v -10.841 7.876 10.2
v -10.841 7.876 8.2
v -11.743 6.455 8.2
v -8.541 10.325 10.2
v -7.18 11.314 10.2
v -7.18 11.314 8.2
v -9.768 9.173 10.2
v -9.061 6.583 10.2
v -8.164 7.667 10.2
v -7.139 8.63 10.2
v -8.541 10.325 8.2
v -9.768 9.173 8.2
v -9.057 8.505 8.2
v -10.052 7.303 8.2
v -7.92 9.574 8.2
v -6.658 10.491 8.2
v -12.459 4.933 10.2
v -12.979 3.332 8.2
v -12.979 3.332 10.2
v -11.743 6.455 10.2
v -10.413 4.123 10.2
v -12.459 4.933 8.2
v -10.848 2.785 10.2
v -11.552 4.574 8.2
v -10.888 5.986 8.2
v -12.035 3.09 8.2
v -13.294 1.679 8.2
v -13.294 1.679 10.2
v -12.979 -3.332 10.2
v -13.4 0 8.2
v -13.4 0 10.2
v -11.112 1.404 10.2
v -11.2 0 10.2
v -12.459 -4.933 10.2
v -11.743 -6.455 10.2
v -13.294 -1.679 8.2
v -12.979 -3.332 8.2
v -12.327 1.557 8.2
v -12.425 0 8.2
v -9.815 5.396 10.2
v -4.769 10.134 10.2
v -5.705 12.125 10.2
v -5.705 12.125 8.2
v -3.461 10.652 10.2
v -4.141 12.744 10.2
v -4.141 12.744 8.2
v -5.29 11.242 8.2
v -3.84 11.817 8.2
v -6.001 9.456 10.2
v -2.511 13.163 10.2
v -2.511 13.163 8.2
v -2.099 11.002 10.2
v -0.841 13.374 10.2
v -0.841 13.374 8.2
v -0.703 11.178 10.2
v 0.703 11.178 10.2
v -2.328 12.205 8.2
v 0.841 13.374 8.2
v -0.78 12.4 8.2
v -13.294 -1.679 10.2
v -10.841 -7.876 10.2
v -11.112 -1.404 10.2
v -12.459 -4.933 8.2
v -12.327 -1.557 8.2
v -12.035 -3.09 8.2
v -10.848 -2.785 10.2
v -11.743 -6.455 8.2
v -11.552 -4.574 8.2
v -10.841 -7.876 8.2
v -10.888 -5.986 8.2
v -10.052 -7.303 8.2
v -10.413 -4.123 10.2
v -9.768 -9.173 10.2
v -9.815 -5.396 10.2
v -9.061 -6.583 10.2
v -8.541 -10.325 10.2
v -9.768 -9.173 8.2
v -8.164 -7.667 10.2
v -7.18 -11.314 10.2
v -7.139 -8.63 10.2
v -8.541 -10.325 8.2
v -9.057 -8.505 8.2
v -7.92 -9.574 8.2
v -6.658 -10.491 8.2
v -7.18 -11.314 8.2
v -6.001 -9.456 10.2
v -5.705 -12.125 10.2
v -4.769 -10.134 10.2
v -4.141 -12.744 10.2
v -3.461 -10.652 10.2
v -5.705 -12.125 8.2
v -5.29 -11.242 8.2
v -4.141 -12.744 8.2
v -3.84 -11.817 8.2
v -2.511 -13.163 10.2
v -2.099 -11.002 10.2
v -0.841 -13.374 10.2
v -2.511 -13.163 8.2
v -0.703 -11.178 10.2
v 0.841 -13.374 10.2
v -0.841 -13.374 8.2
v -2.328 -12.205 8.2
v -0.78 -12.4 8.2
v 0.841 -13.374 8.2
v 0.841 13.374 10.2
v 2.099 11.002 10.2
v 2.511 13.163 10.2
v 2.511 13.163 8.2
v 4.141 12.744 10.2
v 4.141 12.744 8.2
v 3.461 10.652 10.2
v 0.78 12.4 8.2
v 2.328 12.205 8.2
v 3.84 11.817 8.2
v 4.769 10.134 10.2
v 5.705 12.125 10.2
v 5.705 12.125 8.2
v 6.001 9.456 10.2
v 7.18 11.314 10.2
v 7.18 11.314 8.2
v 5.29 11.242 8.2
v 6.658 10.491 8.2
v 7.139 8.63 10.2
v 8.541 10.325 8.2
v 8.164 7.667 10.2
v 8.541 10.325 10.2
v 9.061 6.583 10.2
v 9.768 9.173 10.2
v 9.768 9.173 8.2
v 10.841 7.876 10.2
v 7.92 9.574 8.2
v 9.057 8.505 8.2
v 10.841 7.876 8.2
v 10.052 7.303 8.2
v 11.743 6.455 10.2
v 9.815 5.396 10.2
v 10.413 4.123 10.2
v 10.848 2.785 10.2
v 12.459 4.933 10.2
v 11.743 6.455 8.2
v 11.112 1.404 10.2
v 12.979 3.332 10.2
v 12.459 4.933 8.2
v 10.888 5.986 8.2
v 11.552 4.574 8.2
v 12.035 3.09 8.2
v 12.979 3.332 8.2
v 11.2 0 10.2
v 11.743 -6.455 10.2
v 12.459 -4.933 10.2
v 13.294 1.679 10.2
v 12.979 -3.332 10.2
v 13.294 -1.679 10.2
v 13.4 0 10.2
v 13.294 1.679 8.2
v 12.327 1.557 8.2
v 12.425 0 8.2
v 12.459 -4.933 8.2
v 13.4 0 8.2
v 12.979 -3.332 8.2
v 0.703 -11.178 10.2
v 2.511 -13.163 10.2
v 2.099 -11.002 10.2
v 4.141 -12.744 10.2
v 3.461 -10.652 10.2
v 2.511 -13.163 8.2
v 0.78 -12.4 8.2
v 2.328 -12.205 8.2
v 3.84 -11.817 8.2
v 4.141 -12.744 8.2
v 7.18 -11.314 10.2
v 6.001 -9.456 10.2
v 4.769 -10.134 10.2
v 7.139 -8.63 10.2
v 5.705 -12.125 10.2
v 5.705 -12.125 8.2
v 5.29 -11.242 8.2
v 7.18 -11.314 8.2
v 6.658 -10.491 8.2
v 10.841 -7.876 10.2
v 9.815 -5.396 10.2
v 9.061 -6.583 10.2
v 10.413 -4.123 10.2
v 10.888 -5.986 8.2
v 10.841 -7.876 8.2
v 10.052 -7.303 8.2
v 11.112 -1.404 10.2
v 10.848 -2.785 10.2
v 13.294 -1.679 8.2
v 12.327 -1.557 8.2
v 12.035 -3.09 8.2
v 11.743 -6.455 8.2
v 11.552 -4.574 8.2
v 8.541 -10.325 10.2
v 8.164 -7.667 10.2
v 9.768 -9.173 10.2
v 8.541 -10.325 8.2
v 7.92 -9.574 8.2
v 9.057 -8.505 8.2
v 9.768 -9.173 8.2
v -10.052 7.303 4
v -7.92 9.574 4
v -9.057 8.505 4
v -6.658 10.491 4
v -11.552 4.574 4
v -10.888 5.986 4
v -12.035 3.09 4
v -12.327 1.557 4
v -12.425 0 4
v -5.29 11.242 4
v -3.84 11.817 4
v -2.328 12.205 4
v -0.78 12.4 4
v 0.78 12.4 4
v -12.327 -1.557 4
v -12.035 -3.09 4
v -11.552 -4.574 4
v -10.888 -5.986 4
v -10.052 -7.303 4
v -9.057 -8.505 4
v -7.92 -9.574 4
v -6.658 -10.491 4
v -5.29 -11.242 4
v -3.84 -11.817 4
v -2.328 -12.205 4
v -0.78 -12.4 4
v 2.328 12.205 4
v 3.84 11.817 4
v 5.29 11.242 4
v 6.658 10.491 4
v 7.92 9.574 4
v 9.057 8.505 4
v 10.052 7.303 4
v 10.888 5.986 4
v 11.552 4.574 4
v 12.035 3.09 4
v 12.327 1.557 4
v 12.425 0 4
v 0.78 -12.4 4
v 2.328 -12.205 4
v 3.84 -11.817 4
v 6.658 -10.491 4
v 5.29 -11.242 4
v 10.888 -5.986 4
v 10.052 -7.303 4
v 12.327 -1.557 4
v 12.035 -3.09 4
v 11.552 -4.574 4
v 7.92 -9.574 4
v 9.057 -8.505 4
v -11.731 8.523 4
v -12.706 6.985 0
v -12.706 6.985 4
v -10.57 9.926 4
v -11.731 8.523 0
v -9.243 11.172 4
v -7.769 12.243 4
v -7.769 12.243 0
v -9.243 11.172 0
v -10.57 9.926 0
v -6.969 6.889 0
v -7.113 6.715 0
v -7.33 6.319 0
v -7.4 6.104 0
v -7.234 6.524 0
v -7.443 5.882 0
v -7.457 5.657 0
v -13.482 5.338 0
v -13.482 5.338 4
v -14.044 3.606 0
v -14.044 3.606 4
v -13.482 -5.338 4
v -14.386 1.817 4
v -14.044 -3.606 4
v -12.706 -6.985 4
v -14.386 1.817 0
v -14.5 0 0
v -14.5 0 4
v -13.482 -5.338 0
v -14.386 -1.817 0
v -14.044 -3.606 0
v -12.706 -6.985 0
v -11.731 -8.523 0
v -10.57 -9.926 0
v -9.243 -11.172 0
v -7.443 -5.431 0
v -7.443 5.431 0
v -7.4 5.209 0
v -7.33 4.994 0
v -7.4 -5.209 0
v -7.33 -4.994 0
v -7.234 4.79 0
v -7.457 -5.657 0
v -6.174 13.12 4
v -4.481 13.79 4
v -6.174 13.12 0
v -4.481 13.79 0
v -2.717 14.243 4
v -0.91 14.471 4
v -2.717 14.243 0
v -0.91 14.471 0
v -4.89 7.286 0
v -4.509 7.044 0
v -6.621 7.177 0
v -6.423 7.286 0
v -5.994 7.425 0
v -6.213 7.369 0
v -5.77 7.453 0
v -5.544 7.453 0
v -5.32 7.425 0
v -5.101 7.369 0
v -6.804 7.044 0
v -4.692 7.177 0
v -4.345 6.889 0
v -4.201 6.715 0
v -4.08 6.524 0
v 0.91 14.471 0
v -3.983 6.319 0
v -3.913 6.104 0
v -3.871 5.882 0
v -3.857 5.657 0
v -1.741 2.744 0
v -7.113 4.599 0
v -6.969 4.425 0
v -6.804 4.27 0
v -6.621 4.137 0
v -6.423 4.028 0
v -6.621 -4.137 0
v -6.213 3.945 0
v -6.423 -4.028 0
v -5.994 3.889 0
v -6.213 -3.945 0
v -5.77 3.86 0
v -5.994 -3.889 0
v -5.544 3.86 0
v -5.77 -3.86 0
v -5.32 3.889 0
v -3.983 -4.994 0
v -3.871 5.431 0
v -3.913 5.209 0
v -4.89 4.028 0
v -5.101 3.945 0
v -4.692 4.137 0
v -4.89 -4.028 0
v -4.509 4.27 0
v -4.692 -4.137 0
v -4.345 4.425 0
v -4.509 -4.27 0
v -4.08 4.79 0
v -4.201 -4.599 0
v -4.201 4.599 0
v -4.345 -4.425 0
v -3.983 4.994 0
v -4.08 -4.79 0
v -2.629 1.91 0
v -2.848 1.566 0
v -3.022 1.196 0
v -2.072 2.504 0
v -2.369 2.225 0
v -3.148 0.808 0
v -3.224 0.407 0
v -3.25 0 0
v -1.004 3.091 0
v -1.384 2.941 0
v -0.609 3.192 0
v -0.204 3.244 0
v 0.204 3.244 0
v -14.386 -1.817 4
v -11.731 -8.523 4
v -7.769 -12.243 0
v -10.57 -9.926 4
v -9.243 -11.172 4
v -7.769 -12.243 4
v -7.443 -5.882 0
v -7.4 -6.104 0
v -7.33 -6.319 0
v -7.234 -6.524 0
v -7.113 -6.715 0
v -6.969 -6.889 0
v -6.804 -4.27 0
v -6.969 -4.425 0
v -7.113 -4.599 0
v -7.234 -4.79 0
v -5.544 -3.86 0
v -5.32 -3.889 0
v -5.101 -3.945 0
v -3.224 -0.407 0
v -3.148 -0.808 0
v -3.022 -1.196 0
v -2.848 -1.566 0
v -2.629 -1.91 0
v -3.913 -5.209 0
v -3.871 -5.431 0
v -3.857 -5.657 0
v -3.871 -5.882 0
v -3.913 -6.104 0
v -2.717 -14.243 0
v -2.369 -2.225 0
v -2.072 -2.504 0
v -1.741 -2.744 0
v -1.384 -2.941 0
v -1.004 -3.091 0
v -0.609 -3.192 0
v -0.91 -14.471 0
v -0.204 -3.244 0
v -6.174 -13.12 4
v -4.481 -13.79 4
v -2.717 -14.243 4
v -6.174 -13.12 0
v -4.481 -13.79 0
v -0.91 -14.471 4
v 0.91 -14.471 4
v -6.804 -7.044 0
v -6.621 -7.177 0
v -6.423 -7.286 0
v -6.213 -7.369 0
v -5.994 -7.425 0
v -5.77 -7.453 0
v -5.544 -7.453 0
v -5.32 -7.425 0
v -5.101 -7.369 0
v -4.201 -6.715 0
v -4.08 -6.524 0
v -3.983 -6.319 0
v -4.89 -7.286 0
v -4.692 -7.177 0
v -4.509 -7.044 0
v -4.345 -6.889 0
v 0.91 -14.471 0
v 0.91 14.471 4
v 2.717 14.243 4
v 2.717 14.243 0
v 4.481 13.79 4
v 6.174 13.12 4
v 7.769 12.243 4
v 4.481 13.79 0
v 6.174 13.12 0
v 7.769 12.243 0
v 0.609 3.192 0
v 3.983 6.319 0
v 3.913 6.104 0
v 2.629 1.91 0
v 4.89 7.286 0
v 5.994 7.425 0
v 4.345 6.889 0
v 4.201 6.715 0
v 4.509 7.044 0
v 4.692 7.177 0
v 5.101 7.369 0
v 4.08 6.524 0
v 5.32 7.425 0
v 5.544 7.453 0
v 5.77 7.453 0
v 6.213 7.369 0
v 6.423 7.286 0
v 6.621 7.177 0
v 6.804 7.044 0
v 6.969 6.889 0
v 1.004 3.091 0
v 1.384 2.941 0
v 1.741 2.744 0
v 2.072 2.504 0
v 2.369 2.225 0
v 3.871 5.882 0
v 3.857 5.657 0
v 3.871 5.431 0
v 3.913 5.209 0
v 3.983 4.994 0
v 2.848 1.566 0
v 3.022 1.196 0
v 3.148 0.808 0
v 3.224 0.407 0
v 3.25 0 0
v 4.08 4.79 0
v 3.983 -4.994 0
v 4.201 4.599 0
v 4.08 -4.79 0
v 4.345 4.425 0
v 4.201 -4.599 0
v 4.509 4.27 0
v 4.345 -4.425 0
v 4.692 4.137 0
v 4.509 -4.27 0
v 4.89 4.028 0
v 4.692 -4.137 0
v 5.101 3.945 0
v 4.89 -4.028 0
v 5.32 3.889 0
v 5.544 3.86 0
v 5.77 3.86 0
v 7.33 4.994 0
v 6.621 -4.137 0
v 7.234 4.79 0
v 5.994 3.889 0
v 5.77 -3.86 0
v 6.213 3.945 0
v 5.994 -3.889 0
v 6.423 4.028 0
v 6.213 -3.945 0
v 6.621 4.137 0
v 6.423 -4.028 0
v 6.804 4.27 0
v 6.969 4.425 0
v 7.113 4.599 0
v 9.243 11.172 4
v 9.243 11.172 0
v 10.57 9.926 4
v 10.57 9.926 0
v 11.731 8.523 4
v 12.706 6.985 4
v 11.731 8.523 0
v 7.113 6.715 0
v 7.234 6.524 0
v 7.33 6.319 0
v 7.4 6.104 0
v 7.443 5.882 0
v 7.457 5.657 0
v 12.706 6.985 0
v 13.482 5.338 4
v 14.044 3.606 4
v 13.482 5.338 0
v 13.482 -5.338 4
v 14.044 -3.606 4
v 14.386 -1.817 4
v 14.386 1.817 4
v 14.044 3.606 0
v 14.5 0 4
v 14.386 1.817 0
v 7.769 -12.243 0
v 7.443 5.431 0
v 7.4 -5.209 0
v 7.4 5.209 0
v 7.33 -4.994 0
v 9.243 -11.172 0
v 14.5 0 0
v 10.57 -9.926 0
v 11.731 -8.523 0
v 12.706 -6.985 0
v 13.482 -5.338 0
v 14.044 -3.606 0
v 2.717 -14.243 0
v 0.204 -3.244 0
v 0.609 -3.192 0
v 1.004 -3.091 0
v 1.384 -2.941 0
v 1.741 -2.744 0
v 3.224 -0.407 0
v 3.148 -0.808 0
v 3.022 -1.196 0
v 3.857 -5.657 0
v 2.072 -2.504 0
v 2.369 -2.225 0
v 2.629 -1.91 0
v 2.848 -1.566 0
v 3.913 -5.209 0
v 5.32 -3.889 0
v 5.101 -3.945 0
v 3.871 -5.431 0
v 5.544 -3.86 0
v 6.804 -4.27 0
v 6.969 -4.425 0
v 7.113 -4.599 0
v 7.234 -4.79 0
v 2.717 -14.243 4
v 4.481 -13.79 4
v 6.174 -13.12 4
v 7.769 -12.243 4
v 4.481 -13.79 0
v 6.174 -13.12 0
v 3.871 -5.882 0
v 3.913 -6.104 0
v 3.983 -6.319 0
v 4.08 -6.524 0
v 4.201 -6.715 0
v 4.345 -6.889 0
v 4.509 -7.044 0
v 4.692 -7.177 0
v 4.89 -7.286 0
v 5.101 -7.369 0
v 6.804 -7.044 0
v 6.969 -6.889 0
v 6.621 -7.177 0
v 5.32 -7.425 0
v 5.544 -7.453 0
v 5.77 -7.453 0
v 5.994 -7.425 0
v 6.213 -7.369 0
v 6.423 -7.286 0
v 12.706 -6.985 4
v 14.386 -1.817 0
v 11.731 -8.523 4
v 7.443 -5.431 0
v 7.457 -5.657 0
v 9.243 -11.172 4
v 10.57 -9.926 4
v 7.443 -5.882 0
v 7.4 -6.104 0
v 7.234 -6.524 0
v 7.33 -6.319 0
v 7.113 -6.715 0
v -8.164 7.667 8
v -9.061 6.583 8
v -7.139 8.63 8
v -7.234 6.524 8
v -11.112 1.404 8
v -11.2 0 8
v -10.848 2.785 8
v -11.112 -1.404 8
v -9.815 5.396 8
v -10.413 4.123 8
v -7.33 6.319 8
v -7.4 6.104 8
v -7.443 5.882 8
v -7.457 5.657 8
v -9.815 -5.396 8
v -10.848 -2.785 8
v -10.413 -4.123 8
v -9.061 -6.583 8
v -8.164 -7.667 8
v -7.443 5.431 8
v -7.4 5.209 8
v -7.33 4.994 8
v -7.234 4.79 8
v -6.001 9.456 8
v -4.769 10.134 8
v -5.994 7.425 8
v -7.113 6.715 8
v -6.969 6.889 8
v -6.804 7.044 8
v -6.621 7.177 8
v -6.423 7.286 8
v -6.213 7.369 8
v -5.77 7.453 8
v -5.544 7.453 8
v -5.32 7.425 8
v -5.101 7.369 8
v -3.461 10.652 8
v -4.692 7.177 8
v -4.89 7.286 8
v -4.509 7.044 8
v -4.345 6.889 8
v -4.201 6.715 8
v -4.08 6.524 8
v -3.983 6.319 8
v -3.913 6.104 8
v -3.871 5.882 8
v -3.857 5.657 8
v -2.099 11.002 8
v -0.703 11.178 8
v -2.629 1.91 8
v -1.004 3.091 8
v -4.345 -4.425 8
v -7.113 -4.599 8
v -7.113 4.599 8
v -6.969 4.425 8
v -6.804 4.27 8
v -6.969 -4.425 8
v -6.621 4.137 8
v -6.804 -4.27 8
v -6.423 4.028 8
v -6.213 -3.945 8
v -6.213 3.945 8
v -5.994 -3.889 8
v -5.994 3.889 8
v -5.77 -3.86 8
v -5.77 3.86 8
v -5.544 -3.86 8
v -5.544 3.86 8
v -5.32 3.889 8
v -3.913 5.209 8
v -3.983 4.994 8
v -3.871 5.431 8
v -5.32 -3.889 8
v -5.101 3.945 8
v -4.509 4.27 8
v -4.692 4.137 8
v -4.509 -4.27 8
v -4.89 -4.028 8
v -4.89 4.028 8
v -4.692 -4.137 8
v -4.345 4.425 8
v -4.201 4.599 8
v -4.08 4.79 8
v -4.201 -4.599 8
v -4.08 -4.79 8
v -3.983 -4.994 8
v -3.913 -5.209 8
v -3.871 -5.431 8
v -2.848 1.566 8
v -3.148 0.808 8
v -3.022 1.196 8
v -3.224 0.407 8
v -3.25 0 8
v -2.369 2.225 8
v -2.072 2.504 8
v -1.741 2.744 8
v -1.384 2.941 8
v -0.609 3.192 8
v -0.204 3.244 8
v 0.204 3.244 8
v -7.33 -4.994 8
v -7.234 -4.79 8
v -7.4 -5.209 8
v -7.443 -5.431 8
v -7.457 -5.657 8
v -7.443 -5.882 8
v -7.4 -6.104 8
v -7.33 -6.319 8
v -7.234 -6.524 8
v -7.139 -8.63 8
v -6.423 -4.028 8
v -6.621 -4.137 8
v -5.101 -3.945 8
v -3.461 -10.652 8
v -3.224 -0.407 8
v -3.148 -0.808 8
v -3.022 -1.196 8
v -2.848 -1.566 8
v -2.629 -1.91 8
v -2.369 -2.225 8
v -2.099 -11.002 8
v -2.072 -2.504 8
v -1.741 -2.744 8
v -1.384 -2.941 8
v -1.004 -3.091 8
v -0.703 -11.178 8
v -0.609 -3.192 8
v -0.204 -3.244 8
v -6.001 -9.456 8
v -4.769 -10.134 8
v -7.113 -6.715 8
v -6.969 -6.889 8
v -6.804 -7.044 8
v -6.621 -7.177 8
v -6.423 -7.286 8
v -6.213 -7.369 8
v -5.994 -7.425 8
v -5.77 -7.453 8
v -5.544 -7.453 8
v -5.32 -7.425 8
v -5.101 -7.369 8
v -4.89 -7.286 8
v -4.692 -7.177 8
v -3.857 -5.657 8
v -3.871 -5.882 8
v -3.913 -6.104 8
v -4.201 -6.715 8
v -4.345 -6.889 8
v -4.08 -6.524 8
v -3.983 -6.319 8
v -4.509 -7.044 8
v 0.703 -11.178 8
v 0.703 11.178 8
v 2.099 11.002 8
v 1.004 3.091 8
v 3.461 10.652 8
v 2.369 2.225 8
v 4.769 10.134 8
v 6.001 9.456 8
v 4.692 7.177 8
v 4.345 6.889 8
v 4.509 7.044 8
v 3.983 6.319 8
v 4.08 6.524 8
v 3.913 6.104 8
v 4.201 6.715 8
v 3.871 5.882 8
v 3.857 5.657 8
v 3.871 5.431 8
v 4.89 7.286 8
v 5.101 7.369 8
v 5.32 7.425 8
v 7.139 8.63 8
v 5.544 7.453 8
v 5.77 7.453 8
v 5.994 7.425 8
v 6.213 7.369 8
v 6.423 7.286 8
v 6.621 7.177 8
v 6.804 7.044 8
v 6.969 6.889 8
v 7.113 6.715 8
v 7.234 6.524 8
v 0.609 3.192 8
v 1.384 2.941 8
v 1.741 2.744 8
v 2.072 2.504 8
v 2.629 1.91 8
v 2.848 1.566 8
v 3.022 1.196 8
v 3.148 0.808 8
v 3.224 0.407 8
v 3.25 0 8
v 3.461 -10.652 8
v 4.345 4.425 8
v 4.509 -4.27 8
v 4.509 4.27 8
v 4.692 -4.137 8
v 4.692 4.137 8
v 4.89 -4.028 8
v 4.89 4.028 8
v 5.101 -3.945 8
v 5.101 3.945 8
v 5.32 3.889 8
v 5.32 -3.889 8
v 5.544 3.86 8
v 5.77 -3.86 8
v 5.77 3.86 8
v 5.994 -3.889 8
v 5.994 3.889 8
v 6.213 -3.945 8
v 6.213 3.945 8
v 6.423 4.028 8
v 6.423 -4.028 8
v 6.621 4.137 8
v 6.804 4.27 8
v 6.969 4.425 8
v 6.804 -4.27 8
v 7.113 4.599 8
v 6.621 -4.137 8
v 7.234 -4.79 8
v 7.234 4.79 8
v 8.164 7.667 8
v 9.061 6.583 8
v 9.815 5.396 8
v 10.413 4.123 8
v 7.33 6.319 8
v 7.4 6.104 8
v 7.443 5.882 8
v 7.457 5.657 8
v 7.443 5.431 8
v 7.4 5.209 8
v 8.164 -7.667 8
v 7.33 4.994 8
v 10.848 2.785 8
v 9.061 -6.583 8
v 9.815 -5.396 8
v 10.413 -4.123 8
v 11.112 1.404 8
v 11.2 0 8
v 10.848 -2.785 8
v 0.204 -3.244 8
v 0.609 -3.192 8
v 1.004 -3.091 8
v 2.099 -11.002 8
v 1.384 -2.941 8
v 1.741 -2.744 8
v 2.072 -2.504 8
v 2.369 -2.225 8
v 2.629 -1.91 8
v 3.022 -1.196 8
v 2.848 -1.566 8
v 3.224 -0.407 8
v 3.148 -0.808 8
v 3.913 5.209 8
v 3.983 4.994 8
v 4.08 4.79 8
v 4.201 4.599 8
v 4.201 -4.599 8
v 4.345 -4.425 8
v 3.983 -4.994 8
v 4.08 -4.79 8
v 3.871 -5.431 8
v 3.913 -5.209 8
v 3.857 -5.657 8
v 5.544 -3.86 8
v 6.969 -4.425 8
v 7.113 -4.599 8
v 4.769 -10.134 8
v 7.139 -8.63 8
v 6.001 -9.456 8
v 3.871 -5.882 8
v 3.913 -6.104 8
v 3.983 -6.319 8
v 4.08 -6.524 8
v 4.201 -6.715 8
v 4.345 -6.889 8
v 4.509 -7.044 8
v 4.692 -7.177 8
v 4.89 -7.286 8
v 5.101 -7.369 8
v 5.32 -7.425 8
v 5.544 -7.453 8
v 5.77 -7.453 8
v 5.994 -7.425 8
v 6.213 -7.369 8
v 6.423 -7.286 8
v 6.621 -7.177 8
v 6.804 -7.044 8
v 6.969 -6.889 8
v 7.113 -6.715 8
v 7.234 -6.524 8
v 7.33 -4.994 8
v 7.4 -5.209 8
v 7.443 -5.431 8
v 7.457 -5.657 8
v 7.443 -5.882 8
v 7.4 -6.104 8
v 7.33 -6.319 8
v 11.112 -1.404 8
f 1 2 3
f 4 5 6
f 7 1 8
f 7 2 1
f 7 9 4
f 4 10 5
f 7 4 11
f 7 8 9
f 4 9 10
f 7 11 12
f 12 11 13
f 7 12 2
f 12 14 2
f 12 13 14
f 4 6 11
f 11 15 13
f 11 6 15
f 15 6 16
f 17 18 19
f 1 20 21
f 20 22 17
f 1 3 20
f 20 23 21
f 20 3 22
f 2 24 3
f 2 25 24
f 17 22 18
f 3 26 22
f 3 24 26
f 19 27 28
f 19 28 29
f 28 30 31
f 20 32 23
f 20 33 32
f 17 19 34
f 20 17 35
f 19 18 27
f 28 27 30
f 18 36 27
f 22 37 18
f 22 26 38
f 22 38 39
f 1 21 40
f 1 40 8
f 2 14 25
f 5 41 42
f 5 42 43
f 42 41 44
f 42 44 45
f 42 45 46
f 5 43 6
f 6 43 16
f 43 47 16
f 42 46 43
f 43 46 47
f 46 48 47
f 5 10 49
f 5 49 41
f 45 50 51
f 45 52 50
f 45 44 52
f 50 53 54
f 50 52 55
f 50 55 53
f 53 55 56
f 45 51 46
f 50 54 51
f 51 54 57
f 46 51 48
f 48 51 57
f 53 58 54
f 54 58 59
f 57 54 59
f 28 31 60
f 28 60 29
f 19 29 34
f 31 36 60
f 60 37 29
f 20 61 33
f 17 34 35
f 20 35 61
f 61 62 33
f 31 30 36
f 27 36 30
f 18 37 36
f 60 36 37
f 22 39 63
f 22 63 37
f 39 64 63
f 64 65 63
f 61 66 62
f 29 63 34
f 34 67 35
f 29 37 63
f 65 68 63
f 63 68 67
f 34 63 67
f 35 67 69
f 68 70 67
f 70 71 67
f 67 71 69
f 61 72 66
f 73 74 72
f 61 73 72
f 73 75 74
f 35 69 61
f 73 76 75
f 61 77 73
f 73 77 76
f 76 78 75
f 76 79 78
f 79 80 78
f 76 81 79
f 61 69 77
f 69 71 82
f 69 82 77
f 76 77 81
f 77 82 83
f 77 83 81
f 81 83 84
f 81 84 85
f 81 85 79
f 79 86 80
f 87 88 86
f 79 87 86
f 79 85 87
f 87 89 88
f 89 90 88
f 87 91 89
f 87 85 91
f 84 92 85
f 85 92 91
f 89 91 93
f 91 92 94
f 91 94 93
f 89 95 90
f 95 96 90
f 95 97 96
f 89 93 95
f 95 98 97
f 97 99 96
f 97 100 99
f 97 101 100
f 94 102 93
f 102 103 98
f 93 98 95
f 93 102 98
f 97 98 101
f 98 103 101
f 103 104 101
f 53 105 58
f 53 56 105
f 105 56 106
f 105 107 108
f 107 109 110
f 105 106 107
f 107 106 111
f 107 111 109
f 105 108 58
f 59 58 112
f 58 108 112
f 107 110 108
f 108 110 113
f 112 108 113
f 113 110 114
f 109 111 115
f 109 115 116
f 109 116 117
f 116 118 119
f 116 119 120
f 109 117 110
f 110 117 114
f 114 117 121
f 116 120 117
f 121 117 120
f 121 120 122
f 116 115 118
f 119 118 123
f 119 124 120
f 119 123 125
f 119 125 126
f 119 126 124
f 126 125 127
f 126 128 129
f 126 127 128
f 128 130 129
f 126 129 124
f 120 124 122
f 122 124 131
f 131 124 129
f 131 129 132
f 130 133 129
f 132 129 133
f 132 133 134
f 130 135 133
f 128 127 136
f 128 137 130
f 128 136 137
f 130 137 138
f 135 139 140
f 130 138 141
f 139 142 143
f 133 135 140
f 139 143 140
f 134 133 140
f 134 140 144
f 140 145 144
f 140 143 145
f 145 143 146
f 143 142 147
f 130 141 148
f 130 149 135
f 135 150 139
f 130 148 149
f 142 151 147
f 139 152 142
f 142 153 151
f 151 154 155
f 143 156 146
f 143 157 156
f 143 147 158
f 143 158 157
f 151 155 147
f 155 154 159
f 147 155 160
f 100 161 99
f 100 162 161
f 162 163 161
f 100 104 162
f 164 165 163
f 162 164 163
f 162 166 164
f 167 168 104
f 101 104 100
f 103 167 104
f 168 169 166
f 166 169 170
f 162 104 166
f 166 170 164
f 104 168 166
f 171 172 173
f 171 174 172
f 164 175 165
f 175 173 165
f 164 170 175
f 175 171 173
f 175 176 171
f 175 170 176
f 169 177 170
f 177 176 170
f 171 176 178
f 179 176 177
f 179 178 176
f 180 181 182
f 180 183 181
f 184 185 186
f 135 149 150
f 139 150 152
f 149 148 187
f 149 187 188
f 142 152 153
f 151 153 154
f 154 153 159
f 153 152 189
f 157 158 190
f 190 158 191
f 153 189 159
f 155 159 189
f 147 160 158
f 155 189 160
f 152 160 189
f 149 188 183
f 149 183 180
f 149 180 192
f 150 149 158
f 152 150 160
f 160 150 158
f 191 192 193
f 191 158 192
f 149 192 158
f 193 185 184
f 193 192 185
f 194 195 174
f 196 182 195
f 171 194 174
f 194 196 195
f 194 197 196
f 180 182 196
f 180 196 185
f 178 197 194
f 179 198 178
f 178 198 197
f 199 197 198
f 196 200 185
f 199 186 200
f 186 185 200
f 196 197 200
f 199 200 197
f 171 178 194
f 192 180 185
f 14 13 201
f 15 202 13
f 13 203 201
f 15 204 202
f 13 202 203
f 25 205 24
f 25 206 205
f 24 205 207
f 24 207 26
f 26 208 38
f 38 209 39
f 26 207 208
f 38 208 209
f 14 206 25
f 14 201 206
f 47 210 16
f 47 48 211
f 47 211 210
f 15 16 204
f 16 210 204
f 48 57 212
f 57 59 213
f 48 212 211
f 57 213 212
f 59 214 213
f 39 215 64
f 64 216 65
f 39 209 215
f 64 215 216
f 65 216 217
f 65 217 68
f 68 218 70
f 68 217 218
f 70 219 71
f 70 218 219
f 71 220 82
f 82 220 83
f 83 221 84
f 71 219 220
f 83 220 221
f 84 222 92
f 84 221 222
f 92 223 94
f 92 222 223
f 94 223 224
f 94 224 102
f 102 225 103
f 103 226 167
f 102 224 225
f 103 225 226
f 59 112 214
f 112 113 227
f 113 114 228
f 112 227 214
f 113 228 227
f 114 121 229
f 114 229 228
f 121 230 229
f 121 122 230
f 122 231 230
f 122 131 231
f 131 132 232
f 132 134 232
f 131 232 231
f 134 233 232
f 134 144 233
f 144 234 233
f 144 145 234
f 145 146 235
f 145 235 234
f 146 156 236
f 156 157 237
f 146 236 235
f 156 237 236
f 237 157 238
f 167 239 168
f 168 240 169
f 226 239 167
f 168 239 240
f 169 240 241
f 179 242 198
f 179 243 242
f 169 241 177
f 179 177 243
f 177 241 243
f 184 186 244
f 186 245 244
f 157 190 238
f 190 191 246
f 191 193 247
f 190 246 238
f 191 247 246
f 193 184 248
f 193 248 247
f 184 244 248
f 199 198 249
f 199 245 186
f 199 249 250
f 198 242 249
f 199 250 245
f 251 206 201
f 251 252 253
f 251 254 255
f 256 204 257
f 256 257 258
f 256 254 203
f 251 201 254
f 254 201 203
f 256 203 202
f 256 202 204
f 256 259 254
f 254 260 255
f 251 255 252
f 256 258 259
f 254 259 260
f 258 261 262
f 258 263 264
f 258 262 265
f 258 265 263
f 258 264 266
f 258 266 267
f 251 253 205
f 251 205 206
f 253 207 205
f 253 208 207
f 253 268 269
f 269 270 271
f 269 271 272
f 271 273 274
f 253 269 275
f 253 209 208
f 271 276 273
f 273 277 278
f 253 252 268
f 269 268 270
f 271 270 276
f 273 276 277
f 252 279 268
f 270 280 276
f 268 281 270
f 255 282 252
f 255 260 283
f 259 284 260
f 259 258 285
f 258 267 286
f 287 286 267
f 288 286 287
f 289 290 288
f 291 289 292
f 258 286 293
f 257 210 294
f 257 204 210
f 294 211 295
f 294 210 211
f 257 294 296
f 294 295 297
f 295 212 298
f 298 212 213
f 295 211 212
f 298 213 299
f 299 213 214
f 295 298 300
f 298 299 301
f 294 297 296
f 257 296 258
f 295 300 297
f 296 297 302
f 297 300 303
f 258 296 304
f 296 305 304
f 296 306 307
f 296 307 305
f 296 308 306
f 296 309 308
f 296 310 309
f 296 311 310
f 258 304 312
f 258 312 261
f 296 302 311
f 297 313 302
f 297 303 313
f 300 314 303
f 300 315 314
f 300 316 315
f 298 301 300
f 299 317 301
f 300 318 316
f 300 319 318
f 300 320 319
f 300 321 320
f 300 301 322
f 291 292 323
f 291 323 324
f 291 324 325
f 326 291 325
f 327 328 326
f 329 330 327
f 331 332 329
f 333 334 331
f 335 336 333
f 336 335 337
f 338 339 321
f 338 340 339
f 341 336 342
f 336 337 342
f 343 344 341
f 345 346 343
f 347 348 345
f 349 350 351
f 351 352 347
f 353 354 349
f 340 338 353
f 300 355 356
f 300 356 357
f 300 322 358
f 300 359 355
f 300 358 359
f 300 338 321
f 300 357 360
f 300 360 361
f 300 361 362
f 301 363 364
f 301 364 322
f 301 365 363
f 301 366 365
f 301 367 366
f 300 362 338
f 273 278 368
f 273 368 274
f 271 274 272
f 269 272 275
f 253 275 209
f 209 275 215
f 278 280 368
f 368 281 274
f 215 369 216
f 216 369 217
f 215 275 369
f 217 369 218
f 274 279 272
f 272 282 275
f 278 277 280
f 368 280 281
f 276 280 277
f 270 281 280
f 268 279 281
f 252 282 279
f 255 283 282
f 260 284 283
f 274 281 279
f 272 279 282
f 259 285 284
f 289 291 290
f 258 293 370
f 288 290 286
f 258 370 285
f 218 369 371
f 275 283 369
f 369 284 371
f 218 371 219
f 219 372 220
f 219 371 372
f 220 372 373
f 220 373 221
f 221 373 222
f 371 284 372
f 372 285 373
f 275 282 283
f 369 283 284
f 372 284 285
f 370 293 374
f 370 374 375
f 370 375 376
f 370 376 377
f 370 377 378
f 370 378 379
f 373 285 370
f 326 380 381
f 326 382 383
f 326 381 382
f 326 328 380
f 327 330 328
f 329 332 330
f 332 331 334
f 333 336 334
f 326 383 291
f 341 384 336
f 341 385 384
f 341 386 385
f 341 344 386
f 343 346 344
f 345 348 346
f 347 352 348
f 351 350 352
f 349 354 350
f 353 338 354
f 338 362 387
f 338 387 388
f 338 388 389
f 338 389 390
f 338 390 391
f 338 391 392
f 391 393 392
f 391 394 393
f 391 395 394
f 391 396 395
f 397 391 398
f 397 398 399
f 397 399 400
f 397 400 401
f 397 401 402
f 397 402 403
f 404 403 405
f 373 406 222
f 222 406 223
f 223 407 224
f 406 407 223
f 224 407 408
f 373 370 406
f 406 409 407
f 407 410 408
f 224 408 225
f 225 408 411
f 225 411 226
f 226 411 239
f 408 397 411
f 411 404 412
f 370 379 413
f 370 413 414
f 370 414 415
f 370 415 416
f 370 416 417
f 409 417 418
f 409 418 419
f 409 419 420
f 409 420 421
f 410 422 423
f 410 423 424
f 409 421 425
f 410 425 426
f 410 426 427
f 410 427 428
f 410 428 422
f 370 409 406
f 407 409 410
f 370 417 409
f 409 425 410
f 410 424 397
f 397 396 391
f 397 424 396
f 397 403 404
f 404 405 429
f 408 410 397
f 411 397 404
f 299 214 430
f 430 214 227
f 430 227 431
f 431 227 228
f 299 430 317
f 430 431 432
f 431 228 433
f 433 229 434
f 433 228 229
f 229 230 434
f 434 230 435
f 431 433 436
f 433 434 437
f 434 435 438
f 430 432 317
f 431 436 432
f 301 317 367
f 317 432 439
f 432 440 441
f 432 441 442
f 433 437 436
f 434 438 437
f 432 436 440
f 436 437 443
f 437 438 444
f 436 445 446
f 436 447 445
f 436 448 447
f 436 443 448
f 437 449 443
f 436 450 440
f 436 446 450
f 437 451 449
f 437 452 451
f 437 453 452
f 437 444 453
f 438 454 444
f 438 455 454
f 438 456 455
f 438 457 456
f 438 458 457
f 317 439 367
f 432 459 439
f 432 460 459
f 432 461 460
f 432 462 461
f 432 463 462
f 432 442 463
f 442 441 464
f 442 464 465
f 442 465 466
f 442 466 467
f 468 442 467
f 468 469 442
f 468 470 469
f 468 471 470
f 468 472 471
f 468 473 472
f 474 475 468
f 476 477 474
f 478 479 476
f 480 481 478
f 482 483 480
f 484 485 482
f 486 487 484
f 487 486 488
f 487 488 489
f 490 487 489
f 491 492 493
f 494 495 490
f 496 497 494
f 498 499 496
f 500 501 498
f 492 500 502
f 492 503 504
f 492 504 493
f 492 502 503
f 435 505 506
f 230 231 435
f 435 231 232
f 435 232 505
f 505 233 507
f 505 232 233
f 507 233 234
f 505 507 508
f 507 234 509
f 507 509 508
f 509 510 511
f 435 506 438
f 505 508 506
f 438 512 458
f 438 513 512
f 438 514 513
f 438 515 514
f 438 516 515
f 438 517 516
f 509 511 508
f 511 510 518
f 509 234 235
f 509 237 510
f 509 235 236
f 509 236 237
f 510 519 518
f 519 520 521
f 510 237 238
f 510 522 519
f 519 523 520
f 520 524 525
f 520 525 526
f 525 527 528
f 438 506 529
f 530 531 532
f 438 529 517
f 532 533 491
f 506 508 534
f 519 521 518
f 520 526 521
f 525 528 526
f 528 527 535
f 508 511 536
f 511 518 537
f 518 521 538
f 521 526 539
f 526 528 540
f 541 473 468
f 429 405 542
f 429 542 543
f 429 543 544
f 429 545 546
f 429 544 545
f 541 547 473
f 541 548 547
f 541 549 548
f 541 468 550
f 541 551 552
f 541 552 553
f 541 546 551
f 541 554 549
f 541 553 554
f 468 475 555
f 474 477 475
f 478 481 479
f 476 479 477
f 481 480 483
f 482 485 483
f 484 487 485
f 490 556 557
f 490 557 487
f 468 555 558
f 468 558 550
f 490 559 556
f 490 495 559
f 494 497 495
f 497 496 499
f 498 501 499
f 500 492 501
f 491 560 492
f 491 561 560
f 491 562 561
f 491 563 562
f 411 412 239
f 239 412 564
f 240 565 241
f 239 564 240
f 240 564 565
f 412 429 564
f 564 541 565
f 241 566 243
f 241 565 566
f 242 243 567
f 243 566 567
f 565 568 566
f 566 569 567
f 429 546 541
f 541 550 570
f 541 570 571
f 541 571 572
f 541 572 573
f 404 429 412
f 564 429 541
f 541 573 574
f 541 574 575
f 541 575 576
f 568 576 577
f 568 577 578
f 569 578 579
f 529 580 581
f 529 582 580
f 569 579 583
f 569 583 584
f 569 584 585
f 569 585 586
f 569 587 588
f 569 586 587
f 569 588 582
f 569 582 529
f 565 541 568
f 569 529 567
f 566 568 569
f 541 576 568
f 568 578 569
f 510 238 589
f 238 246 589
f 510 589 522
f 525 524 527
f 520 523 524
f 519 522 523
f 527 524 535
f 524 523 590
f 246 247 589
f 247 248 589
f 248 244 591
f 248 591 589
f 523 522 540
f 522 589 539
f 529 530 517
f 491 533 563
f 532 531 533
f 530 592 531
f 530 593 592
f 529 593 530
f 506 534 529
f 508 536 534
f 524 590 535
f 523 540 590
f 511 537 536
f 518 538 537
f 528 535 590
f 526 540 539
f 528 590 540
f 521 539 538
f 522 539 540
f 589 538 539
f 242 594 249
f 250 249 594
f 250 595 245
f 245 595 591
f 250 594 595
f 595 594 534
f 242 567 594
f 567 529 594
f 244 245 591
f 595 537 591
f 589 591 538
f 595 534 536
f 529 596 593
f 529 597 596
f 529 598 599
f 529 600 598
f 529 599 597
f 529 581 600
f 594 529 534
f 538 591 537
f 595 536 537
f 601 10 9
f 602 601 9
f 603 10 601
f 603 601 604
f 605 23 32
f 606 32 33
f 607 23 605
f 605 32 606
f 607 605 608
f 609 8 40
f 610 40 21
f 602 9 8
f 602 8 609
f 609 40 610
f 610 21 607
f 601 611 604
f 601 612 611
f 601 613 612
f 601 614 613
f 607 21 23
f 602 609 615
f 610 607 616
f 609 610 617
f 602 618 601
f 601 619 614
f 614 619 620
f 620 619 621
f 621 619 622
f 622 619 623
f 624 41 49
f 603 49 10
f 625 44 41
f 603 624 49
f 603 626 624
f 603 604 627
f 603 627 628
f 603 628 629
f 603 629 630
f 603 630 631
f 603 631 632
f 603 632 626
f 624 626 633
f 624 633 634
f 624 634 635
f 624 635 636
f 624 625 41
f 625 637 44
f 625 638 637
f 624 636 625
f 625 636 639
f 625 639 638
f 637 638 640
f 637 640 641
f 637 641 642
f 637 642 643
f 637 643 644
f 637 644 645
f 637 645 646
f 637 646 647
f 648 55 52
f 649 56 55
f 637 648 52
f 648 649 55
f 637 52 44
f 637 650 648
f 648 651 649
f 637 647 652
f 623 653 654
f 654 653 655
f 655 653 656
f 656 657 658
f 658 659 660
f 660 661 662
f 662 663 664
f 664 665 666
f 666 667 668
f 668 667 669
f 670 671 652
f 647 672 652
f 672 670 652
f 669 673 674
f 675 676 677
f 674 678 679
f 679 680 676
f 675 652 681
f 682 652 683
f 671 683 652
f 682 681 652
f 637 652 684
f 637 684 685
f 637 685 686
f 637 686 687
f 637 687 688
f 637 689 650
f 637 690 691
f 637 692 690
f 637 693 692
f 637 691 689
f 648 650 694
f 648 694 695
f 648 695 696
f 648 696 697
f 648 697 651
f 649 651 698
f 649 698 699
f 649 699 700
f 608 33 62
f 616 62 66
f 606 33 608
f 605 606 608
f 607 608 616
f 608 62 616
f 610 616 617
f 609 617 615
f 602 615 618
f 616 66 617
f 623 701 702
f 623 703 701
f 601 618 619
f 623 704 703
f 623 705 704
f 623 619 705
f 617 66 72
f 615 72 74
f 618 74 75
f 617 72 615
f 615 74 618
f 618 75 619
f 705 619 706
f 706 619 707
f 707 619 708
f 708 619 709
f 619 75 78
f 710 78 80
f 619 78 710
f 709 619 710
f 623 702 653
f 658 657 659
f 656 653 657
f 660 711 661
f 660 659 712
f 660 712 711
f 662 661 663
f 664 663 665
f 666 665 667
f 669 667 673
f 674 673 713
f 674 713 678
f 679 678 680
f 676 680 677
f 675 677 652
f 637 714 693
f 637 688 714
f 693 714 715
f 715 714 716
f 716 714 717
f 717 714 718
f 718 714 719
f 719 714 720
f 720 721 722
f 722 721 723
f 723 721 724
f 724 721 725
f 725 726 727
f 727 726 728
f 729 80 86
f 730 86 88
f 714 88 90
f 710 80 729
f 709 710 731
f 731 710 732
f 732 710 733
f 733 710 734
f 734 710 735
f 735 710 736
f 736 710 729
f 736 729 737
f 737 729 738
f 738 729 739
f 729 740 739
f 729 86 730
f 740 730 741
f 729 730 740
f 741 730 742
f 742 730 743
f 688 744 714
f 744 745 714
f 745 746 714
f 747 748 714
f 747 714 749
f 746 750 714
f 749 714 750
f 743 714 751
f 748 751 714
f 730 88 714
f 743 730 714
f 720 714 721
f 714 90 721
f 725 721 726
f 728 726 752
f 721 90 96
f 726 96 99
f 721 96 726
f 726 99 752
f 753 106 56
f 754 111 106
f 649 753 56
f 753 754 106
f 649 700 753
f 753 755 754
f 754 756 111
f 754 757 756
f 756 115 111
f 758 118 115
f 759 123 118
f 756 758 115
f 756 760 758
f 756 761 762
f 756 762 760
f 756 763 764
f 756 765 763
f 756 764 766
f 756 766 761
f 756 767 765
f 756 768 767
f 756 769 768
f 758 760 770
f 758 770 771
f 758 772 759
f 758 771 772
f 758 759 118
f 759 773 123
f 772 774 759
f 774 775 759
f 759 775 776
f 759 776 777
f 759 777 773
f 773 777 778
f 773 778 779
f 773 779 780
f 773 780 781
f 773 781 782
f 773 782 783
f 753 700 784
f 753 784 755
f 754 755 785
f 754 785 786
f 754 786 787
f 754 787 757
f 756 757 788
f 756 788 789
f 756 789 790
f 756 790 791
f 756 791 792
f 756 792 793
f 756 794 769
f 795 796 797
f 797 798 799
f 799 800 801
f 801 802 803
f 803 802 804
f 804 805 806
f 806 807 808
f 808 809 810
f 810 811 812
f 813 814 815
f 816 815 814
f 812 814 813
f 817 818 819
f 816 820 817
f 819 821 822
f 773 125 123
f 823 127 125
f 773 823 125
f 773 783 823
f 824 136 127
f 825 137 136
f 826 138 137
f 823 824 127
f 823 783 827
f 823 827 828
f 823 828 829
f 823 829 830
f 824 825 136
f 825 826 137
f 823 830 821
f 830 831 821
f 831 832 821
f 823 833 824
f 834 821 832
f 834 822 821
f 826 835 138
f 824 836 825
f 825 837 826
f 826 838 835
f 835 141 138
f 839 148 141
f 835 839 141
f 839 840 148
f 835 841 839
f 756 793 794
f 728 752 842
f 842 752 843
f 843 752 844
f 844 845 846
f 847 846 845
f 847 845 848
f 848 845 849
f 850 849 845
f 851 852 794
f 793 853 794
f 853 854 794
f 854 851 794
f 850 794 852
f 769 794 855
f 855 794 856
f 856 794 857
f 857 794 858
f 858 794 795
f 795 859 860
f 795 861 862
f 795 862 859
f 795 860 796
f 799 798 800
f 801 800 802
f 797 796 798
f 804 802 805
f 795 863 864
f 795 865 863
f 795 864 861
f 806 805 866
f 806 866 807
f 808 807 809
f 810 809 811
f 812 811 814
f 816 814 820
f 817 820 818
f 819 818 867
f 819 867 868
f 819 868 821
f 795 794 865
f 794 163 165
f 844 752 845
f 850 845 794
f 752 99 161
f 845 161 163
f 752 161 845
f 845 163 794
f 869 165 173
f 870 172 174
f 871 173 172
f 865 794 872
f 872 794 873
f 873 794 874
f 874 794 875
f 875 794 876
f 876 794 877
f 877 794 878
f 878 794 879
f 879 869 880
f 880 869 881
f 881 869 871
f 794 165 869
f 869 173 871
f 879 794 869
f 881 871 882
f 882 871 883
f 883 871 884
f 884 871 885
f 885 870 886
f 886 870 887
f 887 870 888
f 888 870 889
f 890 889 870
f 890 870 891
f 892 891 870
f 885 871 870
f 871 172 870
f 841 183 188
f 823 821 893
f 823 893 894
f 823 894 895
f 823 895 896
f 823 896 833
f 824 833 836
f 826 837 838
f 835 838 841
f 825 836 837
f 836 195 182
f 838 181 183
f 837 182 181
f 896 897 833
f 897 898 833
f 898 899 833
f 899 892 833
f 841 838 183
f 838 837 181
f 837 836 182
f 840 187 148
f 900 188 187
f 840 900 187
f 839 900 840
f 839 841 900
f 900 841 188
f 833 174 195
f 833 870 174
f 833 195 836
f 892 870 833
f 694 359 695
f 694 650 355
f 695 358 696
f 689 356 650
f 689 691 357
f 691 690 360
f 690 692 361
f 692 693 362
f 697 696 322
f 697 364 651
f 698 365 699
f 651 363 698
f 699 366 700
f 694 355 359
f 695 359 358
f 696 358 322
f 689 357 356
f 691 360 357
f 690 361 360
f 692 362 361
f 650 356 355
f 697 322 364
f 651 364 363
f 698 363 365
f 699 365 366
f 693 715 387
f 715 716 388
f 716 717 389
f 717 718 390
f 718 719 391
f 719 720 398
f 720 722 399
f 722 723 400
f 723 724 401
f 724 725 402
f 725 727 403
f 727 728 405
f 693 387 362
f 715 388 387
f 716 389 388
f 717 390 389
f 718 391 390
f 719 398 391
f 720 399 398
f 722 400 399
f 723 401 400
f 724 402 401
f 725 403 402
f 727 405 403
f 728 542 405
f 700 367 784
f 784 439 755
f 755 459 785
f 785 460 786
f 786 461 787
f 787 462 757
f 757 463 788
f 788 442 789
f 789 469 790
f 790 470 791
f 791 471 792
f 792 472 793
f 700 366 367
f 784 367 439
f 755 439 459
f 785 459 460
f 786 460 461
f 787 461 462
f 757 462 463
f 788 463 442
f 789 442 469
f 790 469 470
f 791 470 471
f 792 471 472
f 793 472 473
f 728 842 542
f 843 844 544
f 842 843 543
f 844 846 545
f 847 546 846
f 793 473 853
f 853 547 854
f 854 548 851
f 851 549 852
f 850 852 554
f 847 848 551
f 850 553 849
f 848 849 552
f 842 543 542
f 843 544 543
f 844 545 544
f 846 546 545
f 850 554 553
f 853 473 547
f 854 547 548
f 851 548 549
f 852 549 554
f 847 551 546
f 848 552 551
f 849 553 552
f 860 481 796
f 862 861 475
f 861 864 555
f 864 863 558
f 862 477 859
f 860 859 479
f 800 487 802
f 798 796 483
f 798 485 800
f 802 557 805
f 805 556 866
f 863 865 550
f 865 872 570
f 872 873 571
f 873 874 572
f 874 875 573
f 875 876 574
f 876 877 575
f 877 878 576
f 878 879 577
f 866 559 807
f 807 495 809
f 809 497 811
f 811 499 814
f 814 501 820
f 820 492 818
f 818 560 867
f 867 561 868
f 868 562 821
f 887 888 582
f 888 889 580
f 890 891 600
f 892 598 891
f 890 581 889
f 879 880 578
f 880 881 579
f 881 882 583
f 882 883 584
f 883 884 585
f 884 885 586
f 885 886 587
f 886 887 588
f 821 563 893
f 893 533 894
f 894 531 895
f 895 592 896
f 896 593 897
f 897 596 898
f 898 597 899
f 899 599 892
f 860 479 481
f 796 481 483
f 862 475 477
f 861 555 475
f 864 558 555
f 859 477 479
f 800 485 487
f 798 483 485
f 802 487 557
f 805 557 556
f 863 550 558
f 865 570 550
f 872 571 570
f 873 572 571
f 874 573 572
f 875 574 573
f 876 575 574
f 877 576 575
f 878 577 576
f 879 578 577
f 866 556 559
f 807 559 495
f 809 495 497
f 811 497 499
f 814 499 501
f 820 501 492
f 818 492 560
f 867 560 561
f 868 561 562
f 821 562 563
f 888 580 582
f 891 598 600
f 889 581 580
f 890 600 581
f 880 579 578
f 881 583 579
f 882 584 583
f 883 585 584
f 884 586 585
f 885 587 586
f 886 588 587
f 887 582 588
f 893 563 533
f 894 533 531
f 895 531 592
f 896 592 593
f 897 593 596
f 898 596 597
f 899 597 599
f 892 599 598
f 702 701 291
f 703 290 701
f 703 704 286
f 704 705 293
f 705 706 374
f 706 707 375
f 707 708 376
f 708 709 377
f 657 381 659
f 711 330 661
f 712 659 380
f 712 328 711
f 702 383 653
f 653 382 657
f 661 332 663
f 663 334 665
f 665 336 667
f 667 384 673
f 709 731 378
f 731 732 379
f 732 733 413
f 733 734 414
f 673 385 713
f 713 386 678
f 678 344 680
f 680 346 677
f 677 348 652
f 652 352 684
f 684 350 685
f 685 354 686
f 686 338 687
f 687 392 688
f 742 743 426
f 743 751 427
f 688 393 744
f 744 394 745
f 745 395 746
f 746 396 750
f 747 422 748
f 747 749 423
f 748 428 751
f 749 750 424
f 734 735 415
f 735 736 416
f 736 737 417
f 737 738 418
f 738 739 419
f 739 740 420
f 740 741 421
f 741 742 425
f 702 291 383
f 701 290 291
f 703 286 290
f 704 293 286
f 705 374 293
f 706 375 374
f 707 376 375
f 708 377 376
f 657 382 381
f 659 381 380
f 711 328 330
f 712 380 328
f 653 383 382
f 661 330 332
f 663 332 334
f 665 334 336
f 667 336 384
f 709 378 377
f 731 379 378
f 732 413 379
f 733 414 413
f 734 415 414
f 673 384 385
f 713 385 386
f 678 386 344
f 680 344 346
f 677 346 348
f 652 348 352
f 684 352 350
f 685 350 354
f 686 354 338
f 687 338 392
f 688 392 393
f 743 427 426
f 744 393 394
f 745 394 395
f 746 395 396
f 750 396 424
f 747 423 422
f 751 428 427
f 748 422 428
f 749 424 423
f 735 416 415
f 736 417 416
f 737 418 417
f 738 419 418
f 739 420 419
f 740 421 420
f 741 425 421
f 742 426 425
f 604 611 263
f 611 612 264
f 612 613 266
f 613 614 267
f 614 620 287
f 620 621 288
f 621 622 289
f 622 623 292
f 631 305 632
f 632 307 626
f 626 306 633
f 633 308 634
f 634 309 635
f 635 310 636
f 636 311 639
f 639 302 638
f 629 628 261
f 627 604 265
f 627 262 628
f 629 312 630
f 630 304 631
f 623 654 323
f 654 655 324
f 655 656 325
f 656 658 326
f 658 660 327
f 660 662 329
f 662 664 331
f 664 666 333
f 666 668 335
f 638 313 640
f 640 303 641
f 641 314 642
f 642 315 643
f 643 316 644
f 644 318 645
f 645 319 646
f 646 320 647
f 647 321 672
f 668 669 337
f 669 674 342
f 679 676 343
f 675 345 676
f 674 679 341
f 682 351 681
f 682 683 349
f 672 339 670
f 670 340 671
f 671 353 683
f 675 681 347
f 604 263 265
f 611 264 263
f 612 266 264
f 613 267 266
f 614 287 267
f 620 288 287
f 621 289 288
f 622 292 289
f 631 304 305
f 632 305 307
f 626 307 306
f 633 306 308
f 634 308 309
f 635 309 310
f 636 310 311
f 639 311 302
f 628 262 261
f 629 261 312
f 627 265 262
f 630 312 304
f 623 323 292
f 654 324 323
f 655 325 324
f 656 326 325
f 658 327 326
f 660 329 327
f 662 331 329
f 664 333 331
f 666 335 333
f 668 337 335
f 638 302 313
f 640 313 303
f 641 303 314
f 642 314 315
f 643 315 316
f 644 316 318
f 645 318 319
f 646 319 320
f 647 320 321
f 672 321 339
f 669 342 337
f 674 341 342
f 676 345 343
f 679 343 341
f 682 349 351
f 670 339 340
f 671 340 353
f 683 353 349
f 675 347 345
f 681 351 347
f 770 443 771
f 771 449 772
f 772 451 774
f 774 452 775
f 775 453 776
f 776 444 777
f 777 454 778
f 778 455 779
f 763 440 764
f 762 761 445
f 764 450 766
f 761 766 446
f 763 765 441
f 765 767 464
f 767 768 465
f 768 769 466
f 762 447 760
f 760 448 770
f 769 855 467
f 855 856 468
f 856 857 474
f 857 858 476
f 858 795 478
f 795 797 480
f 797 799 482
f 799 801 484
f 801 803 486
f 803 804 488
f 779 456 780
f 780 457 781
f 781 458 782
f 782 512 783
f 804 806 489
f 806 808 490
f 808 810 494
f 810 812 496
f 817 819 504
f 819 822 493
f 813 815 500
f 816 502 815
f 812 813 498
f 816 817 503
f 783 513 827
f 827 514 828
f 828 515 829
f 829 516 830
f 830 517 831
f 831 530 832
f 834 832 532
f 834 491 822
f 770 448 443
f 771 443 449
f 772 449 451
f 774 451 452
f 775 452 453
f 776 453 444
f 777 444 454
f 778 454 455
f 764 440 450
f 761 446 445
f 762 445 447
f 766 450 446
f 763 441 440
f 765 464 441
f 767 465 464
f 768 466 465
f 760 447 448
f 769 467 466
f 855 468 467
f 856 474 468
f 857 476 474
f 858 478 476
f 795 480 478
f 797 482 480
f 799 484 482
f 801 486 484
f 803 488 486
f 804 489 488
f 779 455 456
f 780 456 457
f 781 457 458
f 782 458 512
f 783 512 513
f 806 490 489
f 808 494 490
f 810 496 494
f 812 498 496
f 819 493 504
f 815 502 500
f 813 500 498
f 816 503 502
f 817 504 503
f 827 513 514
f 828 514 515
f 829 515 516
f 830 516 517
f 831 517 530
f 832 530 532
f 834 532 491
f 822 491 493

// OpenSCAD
$fn = 50;

difference() {
	union() {
		translate(v = [0, 0, 10.2]) {
			rotate(a = [180, 0, 0]) {
				difference() {
					union() {
						cylinder(h = 2, r = 13.4);
						translate(v = [0, 0, 2.0]) {
							cylinder(h = 4.2, r = 12.425);
						}
						translate(v = [0, 0, 6.2]) {
							cylinder(h = 4, r = 14.5);
						}
					}
					union() {
						translate(v = [0, 0, -1]) {
							cylinder(h = 3.2, r = 11.2);
						}
						translate(v = [0, 0, -1]) {
							cylinder(h = 12.2, r = 3.25);
						}
						translate(v = [5.656854249492381, 5.656854249492381, -1]) {
							cylinder(h = 12.2, r = 1.8);
						}
						translate(v = [-5.65685424949238, 5.656854249492381, -1]) {
							cylinder(h = 12.2, r = 1.8);
						}
						translate(v = [-5.6568542494923815, -5.65685424949238, -1]) {
							cylinder(h = 12.2, r = 1.8);
						}
						translate(v = [5.656854249492379, -5.6568542494923815, -1]) {
							cylinder(h = 12.2, r = 1.8);
						}
					}
				}
			}
		}
	}
	union();
}
